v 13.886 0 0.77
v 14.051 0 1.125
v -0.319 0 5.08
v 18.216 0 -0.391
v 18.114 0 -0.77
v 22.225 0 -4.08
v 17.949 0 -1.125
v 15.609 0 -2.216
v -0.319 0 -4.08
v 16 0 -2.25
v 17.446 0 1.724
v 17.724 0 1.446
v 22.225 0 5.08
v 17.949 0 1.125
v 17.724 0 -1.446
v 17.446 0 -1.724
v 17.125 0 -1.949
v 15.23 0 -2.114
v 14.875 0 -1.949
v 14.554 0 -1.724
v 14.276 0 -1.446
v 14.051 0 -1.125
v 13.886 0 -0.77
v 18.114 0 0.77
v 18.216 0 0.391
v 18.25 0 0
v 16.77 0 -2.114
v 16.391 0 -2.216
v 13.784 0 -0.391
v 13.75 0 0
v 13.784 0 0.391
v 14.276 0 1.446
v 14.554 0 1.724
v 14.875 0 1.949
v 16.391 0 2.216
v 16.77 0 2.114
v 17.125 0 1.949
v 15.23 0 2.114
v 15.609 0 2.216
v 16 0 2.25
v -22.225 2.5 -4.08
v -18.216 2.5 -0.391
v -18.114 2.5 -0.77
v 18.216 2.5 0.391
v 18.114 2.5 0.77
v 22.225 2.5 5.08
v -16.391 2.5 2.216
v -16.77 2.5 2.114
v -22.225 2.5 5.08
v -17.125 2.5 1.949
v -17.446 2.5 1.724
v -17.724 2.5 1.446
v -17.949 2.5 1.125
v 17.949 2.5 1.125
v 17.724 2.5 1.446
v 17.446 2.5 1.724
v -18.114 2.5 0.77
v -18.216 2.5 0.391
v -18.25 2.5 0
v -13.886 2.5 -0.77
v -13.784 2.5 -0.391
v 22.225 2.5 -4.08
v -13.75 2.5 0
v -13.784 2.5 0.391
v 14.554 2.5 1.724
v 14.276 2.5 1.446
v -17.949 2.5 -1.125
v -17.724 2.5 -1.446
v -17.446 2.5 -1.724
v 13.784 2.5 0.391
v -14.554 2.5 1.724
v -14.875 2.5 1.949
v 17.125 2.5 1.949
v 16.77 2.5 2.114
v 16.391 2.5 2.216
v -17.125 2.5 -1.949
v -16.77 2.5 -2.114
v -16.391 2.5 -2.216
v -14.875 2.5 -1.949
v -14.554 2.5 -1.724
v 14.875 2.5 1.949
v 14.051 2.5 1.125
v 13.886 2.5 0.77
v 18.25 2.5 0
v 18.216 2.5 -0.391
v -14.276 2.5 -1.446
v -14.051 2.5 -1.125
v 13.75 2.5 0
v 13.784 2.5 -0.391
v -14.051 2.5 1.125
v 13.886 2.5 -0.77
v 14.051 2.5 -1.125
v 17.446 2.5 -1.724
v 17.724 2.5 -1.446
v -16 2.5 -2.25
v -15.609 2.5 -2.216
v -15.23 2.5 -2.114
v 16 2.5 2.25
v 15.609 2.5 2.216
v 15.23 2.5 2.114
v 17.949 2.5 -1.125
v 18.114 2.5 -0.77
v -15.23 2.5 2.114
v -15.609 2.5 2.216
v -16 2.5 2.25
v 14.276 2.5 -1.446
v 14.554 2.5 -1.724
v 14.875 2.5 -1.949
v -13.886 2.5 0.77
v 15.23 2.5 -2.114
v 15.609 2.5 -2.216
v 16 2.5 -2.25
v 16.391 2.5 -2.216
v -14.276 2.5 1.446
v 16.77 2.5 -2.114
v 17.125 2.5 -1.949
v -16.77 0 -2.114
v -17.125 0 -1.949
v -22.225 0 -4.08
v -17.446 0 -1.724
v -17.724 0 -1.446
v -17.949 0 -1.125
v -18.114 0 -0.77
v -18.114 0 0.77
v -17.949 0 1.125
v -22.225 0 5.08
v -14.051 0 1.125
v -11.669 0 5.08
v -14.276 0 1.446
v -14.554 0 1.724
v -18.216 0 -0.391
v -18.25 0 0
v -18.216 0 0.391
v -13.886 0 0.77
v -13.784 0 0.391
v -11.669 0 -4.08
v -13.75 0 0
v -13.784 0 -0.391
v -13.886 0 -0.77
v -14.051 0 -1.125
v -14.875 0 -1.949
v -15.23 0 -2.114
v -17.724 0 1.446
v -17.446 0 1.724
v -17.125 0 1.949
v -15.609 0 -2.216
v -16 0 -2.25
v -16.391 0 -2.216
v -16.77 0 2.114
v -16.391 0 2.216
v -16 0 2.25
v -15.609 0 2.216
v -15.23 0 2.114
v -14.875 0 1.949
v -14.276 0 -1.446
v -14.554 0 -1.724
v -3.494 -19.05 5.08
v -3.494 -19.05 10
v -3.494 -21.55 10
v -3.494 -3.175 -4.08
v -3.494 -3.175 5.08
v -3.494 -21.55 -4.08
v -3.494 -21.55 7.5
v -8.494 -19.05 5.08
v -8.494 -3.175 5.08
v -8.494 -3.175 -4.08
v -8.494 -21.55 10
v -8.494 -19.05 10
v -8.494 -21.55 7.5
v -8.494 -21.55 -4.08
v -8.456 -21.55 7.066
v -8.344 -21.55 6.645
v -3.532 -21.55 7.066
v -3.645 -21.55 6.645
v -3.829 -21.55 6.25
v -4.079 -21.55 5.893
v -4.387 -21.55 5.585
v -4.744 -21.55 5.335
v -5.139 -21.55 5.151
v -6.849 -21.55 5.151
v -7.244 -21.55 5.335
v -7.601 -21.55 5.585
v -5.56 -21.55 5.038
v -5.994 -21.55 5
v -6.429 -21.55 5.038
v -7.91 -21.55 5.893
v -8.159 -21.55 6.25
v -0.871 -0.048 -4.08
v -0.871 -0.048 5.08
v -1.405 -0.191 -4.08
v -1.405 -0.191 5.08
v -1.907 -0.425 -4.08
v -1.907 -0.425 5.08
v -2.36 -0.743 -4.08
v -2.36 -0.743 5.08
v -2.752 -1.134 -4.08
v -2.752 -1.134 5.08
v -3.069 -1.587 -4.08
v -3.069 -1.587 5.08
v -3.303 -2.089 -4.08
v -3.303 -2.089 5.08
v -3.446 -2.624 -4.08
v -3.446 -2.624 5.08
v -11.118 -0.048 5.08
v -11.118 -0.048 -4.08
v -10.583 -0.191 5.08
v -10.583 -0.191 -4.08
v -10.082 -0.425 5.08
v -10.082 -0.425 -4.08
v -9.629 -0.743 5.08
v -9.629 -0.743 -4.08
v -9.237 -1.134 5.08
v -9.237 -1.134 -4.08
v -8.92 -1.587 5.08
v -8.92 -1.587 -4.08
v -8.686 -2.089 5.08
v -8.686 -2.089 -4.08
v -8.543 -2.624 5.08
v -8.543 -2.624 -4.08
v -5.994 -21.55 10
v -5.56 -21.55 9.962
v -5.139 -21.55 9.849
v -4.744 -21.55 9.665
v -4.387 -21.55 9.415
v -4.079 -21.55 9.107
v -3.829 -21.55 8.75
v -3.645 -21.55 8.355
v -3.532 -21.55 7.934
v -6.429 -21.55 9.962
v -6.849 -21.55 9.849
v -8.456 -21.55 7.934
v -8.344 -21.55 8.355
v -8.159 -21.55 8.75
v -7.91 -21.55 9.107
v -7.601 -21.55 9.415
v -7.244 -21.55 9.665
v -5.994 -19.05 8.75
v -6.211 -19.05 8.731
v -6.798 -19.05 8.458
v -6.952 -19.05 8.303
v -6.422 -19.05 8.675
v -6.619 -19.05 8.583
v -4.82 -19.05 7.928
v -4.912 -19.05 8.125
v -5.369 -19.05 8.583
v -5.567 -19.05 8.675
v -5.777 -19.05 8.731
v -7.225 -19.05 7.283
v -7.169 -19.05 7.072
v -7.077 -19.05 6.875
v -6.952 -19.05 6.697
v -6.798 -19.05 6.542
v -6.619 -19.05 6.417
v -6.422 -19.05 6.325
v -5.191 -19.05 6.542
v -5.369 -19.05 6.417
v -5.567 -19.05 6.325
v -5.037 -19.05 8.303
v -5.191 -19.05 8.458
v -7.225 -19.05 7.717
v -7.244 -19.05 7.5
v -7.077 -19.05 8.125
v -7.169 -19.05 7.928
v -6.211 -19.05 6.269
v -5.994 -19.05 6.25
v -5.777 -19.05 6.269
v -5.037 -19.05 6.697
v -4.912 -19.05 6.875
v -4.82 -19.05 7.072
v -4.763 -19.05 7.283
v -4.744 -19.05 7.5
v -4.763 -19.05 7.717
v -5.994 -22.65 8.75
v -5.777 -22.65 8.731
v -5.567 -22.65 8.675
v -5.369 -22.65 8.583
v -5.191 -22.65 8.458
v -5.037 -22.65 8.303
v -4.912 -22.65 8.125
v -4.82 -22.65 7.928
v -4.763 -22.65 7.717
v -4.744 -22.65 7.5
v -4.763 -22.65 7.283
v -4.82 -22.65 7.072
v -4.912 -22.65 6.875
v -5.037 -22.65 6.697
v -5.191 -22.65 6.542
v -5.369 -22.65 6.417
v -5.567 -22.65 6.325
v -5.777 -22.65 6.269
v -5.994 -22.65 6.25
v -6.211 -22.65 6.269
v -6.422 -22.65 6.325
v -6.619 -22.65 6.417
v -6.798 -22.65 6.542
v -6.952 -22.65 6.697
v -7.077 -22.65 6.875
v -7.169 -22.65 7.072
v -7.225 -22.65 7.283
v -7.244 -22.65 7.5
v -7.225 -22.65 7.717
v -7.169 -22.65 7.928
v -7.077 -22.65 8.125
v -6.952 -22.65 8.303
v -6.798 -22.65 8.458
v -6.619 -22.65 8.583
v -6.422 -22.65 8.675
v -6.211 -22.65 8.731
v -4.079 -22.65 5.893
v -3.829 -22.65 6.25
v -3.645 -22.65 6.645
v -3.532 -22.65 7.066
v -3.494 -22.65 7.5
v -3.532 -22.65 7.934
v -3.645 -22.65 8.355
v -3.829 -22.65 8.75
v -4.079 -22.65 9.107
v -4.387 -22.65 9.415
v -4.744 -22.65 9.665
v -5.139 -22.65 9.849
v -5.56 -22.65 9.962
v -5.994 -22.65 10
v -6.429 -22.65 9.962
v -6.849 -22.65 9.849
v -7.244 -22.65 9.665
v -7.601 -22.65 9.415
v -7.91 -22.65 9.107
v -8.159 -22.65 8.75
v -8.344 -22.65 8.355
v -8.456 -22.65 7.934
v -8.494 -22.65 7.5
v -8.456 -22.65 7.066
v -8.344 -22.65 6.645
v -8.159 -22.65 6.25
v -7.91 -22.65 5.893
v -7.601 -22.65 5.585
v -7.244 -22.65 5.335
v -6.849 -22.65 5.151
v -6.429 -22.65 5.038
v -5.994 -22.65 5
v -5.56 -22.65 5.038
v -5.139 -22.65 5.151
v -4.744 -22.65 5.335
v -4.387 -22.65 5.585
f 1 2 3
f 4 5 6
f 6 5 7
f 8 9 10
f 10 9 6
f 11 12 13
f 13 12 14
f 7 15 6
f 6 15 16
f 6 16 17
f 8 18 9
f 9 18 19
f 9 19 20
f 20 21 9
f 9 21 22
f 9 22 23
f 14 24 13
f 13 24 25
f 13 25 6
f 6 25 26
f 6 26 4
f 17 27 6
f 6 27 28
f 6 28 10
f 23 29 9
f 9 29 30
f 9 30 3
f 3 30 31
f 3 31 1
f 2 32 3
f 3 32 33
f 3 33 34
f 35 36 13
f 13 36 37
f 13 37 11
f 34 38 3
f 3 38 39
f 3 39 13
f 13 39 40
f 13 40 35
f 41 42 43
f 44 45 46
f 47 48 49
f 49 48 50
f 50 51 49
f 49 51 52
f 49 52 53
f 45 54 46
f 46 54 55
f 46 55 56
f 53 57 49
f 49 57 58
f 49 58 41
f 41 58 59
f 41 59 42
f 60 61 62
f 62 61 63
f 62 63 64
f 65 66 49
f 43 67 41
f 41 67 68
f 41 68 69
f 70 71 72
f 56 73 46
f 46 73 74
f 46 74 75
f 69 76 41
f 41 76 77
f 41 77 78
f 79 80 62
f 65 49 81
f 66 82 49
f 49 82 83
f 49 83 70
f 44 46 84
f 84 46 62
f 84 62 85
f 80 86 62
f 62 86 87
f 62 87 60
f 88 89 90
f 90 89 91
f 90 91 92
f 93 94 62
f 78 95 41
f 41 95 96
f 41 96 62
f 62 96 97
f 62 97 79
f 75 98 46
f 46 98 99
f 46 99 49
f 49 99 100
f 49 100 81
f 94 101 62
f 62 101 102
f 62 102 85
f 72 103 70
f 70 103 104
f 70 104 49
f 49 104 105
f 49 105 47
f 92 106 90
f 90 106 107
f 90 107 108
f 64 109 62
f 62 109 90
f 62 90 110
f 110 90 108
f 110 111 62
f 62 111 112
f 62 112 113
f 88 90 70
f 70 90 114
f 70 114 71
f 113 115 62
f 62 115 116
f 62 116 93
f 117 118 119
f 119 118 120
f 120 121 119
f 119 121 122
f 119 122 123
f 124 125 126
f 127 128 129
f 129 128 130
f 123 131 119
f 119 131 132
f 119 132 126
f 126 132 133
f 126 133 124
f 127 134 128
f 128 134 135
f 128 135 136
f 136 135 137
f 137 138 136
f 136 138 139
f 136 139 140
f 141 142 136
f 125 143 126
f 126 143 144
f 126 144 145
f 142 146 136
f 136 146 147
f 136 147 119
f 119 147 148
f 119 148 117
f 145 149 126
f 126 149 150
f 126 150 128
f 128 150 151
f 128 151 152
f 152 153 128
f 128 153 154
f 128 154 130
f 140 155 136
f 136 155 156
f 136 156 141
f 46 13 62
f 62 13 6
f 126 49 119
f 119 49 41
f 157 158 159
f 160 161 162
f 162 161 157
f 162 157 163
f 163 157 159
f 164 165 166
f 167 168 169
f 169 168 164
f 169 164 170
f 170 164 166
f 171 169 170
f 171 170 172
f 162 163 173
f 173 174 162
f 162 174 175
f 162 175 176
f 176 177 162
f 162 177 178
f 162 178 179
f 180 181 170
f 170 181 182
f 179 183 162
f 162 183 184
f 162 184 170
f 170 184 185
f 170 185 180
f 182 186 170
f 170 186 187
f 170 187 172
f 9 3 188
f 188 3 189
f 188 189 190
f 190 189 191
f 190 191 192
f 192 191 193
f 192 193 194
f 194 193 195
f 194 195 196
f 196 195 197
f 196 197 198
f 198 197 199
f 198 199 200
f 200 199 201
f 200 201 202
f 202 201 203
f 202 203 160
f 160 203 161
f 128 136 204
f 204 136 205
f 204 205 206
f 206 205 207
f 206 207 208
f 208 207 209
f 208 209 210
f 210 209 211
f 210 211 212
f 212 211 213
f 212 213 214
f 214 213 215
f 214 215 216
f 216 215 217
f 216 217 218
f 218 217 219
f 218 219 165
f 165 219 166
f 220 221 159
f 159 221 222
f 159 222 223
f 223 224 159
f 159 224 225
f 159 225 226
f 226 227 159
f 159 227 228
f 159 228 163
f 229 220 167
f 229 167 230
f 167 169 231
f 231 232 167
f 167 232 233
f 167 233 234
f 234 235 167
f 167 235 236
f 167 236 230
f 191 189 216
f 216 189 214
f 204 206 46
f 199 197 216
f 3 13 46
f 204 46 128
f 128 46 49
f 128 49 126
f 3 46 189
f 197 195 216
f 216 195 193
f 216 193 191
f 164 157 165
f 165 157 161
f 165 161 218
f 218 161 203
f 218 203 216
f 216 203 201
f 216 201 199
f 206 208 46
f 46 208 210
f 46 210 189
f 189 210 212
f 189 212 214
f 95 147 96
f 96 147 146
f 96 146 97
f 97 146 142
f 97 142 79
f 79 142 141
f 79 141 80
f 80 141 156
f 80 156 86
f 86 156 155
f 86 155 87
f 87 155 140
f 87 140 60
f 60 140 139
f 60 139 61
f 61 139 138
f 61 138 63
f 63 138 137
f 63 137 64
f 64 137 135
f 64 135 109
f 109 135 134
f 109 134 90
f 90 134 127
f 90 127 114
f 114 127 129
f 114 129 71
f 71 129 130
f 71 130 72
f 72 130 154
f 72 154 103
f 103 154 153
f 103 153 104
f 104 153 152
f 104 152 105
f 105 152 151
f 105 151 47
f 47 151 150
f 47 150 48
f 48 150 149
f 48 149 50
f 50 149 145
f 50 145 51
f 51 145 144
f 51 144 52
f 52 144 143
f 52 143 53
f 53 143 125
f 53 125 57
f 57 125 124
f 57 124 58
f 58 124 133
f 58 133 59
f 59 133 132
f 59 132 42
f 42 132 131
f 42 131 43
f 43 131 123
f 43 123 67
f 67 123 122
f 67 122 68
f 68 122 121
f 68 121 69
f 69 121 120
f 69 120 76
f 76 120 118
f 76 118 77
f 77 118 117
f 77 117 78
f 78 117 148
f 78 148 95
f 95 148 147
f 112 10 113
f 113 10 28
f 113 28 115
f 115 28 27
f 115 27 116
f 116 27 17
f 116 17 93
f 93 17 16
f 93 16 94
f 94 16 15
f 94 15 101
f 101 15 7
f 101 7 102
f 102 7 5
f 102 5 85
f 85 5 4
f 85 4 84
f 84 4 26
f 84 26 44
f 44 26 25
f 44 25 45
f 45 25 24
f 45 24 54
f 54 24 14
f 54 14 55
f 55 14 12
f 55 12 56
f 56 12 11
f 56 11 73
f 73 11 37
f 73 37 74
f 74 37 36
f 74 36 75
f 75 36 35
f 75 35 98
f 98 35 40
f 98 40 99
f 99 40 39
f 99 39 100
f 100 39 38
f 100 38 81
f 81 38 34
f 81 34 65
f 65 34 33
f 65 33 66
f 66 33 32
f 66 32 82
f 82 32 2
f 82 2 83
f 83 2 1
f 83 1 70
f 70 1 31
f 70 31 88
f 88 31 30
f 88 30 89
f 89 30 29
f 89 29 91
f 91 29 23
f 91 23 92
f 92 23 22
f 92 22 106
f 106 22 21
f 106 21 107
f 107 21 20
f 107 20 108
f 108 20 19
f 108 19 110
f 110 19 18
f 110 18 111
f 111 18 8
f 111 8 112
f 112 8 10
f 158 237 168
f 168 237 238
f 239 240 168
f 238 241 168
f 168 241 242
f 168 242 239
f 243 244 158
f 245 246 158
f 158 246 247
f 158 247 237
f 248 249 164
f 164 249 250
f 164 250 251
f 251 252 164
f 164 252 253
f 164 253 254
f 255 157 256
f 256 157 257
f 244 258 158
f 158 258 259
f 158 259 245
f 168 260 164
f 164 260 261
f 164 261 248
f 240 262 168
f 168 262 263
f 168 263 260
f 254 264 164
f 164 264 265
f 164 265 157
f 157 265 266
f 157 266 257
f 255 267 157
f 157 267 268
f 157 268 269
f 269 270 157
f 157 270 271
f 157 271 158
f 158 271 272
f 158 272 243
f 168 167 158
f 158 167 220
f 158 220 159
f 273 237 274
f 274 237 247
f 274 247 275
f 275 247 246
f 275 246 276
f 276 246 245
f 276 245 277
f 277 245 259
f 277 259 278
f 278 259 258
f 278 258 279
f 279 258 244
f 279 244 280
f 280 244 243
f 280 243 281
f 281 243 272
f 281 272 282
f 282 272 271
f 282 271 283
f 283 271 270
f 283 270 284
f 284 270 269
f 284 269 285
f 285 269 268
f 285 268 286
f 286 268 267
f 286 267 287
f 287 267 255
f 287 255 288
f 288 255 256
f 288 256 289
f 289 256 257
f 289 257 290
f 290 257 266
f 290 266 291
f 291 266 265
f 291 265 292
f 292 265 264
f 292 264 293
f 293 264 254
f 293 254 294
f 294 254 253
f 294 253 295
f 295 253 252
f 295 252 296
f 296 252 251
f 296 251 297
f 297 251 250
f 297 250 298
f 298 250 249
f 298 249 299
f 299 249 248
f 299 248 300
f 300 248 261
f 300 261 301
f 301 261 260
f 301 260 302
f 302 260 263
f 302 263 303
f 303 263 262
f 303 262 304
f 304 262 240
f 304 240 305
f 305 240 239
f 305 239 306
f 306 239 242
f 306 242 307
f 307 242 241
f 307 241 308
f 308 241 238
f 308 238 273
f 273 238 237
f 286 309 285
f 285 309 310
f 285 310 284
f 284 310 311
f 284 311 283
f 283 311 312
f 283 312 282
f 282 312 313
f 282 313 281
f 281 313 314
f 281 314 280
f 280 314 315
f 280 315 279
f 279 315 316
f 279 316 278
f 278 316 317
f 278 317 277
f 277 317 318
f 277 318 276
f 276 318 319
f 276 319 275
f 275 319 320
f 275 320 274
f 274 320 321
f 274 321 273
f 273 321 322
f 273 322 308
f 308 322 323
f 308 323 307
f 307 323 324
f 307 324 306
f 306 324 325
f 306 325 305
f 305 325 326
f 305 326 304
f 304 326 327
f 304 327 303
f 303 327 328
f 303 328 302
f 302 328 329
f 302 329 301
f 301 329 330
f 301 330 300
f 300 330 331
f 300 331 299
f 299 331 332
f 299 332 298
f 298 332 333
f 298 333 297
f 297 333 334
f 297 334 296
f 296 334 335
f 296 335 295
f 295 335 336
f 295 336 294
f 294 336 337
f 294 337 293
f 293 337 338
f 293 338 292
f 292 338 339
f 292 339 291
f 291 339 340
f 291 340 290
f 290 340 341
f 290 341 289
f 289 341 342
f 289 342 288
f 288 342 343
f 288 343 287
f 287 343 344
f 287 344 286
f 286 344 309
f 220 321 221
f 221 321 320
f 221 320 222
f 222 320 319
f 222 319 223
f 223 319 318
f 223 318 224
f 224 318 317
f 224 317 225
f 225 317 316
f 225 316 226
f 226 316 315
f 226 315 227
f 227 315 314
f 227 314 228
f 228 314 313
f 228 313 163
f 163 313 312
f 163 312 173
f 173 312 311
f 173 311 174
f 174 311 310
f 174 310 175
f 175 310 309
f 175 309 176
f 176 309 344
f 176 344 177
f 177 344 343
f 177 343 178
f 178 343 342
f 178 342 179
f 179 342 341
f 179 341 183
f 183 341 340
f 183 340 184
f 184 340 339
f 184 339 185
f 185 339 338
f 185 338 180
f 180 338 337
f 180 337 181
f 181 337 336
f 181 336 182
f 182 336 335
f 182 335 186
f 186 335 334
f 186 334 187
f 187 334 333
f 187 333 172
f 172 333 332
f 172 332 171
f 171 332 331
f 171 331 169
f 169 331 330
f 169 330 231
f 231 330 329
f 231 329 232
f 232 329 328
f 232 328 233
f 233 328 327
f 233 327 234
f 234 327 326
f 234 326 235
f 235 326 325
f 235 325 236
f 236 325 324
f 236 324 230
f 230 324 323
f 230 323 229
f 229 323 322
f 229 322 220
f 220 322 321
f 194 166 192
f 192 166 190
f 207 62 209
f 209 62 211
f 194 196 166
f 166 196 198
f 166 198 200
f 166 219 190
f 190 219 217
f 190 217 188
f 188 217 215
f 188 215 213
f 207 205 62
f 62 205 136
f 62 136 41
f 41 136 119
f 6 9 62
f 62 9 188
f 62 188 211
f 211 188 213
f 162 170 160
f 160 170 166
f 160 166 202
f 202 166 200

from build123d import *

# Parameters (mm, degrees)
SKETCH1_W           = 44.45
SKETCH1_H           = 10.16
SKETCH1_R           = 2.25
BOSS_EXTRUDE1_DEPTH = 2.5
SKETCH3_W           = 5
SKETCH3_H           = 10.16
BOSS_EXTRUDE2_DEPTH = 19.05
SKETCH5_W           = 5
SKETCH5_H           = 15.08
SKETCH5_R           = 1.25
BOSS_EXTRUDE3_DEPTH = 2.5
SKETCH6_R           = 2.5
SKETCH6_R_2         = 1.25
BOSS_EXTRUDE4_DEPTH = 1.1
FILLET1_R           = 3.175
CUT_EXTRUDE1_DEPTH  = 1


with BuildPart() as part:
    # Sketch1 → Boss-Extrude1 (new body)
    with BuildSketch(Plane(origin=(0, 0, 0), x_dir=(1, 0, 0), z_dir=(0, 1, 0))):
        Rectangle(SKETCH1_W, SKETCH1_H)
        with Locations((-16, 0)):
            Circle(SKETCH1_R, mode=Mode.SUBTRACT)
        with Locations((16, 0)):
            Circle(SKETCH1_R, mode=Mode.SUBTRACT)
    extrude(amount=BOSS_EXTRUDE1_DEPTH)

    # Sketch3 → Boss-Extrude2 (add)
    with BuildSketch(Plane(origin=(0, 0, 0), x_dir=(-1, 0, 0), z_dir=(0, -1, 0))):
        with Locations((5.9944, 0)):
            Rectangle(SKETCH3_W, SKETCH3_H)
    extrude(amount=BOSS_EXTRUDE2_DEPTH)

    # Sketch5 → Boss-Extrude3 (add)
    with BuildSketch(Plane.XZ.offset(19.05)):
        with Locations((-5.9944, 2.46)):
            Rectangle(SKETCH5_W, SKETCH5_H)
        with Locations((-5.9944, 7.5)):
            Circle(SKETCH5_R, mode=Mode.SUBTRACT)
    extrude(amount=BOSS_EXTRUDE3_DEPTH)

    # Sketch6 → Boss-Extrude4 (add)
    with BuildSketch(Plane.XZ.offset(21.55)):
        with Locations((-5.9944, 7.5)):
            Circle(SKETCH6_R)
        with Locations((-5.9944, 7.5)):
            Circle(SKETCH6_R_2, mode=Mode.SUBTRACT)
    extrude(amount=BOSS_EXTRUDE4_DEPTH)

    # Fillet1
    fillet1_edges = [part.edges().sort_by_distance(p)[0] for p in [
        (-3.4944, 0, 0),
        (-8.4944, 0, 0),
    ]]
    fillet(fillet1_edges, radius=FILLET1_R)

    # Sketch7 → Cut-Extrude1 (cut)
    with BuildSketch(Plane(origin=(0, 0, -5.08), x_dir=(-1, 0, 0), z_dir=(0, 0, -1))):
        with BuildLine():
            Line((-22.225, 0), (0.3194, 0))
            ThreePointArc((0.3194, 0), (2.56446403, -0.92993597), (3.4944, -3.175))
            Line((3.4944, -3.175), (3.4944, -21.55))
            Line((3.4944, -21.55), (8.4944, -21.55))
            Line((8.4944, -21.55), (8.4944, -3.175))
            ThreePointArc((8.4944, -3.175), (9.42433597, -0.92993597), (11.6694, 0))
            Line((11.6694, 0), (22.225, 0))
            Line((22.225, 0), (22.225, 2.5))
            Line((22.225, 2.5), (-22.225, 2.5))
            Line((-22.225, 2.5), (-22.225, 0))
        make_face()
    extrude(amount=-CUT_EXTRUDE1_DEPTH, mode=Mode.SUBTRACT)


solid = part.part
